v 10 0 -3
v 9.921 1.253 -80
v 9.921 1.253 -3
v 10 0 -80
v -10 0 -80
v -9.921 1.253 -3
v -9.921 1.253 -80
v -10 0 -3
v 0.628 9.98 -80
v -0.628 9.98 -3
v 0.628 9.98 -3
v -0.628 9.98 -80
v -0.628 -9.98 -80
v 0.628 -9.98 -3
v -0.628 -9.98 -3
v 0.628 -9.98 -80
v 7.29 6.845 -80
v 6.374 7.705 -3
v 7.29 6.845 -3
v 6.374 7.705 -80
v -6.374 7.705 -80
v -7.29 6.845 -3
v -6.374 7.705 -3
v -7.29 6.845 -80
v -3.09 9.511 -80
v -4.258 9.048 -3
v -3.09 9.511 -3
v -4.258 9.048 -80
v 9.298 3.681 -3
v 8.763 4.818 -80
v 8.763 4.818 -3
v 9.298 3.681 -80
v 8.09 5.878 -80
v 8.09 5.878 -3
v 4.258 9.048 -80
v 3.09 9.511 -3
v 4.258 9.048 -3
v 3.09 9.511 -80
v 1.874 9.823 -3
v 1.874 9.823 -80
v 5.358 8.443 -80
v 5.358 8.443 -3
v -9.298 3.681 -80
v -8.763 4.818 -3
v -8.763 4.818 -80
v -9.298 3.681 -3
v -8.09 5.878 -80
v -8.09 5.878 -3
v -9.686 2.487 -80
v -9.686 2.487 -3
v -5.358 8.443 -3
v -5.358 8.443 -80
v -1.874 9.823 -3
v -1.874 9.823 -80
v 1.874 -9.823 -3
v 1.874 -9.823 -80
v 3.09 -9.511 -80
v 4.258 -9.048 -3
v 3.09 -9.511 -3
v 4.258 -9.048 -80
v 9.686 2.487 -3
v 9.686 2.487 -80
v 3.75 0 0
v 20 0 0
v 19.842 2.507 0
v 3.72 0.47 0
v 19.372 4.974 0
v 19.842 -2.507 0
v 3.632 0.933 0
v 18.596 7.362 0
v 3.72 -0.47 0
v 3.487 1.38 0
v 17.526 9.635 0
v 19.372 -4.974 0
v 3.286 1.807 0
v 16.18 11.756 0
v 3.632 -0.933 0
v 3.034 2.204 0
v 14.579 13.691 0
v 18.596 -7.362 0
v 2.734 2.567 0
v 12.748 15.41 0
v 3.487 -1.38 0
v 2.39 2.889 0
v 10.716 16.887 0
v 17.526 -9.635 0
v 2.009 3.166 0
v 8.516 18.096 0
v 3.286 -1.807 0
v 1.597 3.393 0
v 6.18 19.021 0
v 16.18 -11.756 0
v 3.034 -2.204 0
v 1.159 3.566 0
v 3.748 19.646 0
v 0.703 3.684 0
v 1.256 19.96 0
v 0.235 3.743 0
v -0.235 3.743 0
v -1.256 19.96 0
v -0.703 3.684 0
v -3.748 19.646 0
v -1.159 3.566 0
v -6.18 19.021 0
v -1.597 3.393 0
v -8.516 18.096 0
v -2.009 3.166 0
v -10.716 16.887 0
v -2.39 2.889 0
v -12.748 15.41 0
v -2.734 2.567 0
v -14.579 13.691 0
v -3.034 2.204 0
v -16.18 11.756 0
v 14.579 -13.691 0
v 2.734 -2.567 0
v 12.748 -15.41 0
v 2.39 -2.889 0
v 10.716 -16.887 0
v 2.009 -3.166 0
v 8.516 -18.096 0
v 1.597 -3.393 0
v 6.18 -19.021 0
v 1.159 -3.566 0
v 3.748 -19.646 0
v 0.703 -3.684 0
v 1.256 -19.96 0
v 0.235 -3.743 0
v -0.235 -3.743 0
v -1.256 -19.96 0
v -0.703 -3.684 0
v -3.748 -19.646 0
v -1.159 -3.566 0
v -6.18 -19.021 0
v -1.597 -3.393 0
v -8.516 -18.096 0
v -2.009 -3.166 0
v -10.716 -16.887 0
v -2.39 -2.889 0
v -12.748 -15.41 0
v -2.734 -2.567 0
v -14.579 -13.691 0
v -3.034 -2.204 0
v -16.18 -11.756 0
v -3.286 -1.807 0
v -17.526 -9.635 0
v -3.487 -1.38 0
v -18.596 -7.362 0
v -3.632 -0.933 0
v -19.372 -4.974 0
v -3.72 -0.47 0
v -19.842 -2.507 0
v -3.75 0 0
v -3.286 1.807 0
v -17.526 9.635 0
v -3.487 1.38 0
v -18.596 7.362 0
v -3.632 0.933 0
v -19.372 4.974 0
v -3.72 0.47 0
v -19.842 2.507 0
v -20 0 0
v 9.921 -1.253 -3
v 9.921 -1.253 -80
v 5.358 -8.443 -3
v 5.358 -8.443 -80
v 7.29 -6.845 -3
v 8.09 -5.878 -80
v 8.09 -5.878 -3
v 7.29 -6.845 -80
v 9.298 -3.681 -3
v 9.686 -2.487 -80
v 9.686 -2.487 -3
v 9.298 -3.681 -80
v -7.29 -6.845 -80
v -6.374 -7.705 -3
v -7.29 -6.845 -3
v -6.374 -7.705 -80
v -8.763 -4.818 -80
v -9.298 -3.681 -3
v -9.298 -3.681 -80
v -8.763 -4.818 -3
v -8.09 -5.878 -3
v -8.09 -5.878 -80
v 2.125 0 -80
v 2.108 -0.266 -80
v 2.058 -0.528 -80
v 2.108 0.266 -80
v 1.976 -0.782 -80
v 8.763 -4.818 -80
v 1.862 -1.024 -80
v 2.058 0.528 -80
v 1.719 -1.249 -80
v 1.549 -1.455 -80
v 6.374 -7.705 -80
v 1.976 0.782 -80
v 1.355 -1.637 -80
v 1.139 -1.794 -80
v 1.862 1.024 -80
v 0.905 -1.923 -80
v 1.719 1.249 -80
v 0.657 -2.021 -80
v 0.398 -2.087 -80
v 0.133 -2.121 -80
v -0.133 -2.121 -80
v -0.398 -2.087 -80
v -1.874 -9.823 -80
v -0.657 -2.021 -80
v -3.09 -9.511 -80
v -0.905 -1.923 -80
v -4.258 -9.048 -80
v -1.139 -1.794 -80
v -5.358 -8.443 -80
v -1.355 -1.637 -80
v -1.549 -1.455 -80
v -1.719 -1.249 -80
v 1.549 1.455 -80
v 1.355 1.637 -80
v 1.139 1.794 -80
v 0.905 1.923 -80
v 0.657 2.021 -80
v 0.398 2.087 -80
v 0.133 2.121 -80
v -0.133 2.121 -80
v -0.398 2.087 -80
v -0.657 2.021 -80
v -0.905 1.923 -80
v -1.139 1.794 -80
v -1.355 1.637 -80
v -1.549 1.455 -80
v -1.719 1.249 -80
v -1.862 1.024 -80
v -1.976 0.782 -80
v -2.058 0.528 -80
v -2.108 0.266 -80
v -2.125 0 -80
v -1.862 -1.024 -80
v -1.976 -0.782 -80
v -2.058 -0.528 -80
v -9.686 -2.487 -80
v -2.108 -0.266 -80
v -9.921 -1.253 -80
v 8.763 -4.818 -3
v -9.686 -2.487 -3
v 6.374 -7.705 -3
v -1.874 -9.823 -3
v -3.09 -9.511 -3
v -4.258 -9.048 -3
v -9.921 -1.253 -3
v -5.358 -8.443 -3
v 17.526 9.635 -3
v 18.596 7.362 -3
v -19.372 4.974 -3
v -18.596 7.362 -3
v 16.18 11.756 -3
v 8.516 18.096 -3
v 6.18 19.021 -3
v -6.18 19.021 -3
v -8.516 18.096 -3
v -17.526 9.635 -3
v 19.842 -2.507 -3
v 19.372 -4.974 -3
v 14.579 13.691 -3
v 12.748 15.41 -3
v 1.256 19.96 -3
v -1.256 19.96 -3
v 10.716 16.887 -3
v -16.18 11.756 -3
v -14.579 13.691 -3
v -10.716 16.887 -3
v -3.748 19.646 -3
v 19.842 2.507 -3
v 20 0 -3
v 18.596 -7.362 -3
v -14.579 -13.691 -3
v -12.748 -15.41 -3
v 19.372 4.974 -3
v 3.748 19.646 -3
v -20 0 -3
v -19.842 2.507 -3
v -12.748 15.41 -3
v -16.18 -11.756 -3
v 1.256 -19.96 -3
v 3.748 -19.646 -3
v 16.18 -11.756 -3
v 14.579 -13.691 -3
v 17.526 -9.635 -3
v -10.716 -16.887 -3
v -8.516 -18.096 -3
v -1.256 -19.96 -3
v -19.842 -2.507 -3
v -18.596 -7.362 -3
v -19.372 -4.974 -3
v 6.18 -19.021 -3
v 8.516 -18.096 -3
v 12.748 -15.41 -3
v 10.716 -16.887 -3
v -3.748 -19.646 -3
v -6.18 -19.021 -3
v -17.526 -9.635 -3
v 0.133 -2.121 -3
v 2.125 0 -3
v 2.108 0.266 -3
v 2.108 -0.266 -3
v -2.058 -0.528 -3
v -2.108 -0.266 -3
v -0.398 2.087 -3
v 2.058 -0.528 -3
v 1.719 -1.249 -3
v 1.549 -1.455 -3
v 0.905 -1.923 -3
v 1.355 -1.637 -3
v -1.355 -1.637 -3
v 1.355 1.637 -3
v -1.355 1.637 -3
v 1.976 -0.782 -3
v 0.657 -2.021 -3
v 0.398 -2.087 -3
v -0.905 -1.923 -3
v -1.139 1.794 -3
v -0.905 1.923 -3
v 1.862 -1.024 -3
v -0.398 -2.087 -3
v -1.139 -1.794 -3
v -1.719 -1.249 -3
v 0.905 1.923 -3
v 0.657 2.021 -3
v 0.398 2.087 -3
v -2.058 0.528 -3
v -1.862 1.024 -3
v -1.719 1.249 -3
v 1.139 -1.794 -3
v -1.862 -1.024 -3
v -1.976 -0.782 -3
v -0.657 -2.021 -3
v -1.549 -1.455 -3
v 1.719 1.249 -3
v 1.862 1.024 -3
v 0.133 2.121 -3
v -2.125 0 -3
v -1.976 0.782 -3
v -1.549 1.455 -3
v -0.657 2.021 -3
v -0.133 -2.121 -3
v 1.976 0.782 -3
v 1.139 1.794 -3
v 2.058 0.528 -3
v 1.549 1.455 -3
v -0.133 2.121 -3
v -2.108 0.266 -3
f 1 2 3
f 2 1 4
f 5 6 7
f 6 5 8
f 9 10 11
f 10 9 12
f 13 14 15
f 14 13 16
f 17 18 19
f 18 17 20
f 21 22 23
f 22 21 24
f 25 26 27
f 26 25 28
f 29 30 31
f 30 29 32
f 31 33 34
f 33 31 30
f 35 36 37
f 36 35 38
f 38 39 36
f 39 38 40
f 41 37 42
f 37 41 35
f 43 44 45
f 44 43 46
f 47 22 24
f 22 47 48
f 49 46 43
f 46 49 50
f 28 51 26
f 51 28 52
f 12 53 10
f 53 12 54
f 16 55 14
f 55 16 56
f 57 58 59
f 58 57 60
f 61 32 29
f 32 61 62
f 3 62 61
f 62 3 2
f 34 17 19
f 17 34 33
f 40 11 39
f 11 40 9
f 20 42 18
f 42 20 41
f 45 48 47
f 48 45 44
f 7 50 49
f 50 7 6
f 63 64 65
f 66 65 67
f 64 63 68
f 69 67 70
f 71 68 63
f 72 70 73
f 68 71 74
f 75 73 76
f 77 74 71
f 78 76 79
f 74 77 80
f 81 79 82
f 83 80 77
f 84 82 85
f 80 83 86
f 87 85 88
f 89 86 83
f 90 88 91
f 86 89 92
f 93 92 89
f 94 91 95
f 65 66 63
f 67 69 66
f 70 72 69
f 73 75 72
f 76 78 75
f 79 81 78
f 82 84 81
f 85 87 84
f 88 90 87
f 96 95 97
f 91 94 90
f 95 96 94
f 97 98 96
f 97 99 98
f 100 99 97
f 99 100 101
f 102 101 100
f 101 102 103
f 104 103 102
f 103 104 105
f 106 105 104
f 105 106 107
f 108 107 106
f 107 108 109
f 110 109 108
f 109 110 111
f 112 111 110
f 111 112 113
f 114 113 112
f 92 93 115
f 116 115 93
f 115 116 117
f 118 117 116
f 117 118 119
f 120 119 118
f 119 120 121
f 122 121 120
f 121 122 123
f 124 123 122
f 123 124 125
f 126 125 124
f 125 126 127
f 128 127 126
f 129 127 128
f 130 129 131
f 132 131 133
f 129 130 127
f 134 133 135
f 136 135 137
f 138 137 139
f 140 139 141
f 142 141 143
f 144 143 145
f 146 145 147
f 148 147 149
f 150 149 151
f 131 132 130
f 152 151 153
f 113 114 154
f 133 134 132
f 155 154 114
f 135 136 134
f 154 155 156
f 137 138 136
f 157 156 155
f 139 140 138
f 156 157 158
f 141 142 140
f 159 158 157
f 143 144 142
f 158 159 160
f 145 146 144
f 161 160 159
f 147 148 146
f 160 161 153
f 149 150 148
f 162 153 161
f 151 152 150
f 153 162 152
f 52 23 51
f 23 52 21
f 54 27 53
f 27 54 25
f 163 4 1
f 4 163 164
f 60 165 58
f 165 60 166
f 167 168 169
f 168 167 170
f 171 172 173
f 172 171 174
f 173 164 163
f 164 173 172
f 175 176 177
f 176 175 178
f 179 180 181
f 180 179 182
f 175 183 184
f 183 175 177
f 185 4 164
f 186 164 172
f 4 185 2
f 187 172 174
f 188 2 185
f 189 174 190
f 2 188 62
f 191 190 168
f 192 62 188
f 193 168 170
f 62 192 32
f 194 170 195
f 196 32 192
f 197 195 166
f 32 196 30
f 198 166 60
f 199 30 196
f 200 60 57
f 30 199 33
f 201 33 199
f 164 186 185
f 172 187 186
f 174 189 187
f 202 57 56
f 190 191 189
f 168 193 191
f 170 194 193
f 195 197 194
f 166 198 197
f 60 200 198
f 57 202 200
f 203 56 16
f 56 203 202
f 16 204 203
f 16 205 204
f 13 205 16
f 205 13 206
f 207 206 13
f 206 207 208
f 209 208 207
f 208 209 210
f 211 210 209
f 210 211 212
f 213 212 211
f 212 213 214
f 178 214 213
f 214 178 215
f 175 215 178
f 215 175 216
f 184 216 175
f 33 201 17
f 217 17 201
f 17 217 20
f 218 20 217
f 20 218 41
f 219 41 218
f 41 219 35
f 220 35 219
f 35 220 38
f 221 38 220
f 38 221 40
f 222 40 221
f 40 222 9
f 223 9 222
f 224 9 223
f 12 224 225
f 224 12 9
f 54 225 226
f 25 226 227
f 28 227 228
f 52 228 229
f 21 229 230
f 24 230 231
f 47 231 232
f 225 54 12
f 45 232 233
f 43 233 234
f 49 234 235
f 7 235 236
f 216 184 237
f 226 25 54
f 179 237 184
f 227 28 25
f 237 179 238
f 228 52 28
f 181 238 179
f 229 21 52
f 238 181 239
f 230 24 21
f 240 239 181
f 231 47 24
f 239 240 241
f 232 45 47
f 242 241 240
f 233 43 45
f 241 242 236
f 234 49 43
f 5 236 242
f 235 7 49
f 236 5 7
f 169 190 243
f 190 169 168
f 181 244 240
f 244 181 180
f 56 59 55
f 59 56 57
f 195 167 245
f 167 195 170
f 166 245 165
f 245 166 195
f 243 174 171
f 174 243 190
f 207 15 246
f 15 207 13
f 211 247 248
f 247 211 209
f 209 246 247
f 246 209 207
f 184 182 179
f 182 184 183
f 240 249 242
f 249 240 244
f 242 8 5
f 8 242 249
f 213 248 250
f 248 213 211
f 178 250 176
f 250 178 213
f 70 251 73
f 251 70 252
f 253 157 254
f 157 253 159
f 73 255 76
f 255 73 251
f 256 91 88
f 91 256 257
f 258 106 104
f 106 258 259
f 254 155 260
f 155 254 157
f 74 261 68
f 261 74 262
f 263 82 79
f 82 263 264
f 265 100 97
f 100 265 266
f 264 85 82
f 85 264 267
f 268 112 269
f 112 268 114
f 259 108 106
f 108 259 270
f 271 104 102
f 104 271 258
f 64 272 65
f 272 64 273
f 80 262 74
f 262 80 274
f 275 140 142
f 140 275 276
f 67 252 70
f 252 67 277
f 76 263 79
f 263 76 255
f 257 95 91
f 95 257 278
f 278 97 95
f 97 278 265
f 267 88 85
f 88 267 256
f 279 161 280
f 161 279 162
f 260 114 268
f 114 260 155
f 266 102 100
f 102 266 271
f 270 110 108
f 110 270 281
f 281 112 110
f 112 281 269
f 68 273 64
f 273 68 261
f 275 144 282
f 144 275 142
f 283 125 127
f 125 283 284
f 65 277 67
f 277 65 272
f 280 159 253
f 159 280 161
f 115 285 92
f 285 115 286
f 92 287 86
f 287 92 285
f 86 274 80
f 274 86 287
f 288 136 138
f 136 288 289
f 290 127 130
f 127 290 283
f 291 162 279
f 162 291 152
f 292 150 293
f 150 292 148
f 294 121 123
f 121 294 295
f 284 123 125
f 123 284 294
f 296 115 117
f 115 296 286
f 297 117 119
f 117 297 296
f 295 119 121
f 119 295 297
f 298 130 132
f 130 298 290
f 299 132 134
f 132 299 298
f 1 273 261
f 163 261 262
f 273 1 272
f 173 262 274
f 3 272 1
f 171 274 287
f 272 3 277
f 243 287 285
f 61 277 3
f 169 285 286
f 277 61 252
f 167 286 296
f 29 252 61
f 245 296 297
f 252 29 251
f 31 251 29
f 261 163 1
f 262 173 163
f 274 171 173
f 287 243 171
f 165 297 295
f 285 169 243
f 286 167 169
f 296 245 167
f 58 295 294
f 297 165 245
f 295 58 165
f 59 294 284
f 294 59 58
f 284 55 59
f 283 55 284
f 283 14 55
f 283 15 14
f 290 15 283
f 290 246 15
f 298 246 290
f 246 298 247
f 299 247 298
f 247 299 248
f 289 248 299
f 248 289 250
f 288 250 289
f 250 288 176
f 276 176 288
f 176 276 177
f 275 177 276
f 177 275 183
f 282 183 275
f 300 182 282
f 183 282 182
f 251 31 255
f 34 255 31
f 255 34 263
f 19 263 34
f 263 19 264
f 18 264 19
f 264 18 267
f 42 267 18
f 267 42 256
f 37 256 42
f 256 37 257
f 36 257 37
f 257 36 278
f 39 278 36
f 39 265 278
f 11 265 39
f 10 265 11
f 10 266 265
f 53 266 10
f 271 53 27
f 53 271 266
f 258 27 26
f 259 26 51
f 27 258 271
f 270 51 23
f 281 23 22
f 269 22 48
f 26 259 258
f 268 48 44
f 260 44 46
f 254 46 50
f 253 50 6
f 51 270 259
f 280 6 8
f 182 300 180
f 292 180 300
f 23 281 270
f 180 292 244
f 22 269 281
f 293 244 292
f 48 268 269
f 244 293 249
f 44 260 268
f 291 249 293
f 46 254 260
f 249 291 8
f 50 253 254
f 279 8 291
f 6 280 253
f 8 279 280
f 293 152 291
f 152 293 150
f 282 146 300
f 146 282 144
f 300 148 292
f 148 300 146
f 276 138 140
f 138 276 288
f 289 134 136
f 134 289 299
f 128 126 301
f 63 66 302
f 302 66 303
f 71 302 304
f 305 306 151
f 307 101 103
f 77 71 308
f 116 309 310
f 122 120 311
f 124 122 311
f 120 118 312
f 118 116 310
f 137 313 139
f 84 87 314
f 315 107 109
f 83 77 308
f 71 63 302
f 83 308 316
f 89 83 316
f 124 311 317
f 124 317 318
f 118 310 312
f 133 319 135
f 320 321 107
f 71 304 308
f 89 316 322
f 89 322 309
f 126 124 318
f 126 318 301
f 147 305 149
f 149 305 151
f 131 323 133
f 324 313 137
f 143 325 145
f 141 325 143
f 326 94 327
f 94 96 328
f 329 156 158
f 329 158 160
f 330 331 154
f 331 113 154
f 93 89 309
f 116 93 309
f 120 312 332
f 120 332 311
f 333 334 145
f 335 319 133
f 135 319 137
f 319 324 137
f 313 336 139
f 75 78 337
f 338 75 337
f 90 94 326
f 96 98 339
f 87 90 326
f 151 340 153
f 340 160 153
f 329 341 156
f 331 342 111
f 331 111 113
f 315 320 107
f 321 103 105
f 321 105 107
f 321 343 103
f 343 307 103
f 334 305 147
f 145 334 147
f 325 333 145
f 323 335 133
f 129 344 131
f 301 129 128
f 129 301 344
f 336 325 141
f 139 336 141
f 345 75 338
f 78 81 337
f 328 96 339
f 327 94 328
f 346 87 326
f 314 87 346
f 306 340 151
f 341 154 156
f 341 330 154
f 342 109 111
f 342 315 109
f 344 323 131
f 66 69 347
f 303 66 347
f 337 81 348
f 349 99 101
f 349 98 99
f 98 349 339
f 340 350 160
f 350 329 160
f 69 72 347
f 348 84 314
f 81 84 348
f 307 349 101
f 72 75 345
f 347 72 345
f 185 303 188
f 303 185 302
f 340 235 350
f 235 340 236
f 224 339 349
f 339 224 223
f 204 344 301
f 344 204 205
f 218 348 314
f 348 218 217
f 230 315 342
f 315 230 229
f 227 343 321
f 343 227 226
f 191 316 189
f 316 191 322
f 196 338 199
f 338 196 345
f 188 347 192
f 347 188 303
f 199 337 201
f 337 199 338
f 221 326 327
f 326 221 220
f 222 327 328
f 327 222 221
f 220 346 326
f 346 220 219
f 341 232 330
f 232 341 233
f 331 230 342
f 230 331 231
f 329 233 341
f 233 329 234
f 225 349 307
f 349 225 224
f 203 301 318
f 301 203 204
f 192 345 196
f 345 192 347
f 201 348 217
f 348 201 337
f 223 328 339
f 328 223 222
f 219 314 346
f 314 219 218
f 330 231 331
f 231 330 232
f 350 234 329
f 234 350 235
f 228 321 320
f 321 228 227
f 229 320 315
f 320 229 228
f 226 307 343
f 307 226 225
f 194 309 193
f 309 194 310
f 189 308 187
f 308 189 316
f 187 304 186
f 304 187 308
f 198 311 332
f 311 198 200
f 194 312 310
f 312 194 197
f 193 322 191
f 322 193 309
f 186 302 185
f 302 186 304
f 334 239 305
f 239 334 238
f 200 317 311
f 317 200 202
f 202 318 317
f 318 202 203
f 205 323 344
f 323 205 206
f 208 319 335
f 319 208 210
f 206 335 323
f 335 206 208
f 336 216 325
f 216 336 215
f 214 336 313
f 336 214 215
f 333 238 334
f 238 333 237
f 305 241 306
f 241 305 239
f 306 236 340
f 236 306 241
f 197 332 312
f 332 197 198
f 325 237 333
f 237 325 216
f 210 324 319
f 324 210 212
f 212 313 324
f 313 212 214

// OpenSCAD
$fn = 50;


difference() {
	union() {
		translate(v = [0, 0, -80.0000000000]) {
			cylinder(h = 80, r = 10.0000000000);
		}
		translate(v = [0, 0, -3.0000000000]) {
			cylinder(h = 3, r = 20.0000000000);
		}
	}
	union() {
		translate(v = [0, 0, 0]) {
			rotate(a = [0, 0, 0]) {
				difference() {
					union() {
						#translate(v = [0, 0, -80.0000000000]) {
							cylinder(h = 80, r = 2.0000000000);
						}
						#translate(v = [0, 0, -3]) {
							cylinder(h = 3, r = 10.0000000000, r1 = 2.1250000000, r2 = 3.7500000000);
						}
						#translate(v = [0, 0, -80.0000000000]) {
							cylinder(h = 80, r = 2.1250000000);
						}
						#translate(v = [0, 0, -80.0000000000]) {
							cylinder(h = 80, r = 2.0000000000);
						}
					}
					union();
				}
			}
		}
	}
}
